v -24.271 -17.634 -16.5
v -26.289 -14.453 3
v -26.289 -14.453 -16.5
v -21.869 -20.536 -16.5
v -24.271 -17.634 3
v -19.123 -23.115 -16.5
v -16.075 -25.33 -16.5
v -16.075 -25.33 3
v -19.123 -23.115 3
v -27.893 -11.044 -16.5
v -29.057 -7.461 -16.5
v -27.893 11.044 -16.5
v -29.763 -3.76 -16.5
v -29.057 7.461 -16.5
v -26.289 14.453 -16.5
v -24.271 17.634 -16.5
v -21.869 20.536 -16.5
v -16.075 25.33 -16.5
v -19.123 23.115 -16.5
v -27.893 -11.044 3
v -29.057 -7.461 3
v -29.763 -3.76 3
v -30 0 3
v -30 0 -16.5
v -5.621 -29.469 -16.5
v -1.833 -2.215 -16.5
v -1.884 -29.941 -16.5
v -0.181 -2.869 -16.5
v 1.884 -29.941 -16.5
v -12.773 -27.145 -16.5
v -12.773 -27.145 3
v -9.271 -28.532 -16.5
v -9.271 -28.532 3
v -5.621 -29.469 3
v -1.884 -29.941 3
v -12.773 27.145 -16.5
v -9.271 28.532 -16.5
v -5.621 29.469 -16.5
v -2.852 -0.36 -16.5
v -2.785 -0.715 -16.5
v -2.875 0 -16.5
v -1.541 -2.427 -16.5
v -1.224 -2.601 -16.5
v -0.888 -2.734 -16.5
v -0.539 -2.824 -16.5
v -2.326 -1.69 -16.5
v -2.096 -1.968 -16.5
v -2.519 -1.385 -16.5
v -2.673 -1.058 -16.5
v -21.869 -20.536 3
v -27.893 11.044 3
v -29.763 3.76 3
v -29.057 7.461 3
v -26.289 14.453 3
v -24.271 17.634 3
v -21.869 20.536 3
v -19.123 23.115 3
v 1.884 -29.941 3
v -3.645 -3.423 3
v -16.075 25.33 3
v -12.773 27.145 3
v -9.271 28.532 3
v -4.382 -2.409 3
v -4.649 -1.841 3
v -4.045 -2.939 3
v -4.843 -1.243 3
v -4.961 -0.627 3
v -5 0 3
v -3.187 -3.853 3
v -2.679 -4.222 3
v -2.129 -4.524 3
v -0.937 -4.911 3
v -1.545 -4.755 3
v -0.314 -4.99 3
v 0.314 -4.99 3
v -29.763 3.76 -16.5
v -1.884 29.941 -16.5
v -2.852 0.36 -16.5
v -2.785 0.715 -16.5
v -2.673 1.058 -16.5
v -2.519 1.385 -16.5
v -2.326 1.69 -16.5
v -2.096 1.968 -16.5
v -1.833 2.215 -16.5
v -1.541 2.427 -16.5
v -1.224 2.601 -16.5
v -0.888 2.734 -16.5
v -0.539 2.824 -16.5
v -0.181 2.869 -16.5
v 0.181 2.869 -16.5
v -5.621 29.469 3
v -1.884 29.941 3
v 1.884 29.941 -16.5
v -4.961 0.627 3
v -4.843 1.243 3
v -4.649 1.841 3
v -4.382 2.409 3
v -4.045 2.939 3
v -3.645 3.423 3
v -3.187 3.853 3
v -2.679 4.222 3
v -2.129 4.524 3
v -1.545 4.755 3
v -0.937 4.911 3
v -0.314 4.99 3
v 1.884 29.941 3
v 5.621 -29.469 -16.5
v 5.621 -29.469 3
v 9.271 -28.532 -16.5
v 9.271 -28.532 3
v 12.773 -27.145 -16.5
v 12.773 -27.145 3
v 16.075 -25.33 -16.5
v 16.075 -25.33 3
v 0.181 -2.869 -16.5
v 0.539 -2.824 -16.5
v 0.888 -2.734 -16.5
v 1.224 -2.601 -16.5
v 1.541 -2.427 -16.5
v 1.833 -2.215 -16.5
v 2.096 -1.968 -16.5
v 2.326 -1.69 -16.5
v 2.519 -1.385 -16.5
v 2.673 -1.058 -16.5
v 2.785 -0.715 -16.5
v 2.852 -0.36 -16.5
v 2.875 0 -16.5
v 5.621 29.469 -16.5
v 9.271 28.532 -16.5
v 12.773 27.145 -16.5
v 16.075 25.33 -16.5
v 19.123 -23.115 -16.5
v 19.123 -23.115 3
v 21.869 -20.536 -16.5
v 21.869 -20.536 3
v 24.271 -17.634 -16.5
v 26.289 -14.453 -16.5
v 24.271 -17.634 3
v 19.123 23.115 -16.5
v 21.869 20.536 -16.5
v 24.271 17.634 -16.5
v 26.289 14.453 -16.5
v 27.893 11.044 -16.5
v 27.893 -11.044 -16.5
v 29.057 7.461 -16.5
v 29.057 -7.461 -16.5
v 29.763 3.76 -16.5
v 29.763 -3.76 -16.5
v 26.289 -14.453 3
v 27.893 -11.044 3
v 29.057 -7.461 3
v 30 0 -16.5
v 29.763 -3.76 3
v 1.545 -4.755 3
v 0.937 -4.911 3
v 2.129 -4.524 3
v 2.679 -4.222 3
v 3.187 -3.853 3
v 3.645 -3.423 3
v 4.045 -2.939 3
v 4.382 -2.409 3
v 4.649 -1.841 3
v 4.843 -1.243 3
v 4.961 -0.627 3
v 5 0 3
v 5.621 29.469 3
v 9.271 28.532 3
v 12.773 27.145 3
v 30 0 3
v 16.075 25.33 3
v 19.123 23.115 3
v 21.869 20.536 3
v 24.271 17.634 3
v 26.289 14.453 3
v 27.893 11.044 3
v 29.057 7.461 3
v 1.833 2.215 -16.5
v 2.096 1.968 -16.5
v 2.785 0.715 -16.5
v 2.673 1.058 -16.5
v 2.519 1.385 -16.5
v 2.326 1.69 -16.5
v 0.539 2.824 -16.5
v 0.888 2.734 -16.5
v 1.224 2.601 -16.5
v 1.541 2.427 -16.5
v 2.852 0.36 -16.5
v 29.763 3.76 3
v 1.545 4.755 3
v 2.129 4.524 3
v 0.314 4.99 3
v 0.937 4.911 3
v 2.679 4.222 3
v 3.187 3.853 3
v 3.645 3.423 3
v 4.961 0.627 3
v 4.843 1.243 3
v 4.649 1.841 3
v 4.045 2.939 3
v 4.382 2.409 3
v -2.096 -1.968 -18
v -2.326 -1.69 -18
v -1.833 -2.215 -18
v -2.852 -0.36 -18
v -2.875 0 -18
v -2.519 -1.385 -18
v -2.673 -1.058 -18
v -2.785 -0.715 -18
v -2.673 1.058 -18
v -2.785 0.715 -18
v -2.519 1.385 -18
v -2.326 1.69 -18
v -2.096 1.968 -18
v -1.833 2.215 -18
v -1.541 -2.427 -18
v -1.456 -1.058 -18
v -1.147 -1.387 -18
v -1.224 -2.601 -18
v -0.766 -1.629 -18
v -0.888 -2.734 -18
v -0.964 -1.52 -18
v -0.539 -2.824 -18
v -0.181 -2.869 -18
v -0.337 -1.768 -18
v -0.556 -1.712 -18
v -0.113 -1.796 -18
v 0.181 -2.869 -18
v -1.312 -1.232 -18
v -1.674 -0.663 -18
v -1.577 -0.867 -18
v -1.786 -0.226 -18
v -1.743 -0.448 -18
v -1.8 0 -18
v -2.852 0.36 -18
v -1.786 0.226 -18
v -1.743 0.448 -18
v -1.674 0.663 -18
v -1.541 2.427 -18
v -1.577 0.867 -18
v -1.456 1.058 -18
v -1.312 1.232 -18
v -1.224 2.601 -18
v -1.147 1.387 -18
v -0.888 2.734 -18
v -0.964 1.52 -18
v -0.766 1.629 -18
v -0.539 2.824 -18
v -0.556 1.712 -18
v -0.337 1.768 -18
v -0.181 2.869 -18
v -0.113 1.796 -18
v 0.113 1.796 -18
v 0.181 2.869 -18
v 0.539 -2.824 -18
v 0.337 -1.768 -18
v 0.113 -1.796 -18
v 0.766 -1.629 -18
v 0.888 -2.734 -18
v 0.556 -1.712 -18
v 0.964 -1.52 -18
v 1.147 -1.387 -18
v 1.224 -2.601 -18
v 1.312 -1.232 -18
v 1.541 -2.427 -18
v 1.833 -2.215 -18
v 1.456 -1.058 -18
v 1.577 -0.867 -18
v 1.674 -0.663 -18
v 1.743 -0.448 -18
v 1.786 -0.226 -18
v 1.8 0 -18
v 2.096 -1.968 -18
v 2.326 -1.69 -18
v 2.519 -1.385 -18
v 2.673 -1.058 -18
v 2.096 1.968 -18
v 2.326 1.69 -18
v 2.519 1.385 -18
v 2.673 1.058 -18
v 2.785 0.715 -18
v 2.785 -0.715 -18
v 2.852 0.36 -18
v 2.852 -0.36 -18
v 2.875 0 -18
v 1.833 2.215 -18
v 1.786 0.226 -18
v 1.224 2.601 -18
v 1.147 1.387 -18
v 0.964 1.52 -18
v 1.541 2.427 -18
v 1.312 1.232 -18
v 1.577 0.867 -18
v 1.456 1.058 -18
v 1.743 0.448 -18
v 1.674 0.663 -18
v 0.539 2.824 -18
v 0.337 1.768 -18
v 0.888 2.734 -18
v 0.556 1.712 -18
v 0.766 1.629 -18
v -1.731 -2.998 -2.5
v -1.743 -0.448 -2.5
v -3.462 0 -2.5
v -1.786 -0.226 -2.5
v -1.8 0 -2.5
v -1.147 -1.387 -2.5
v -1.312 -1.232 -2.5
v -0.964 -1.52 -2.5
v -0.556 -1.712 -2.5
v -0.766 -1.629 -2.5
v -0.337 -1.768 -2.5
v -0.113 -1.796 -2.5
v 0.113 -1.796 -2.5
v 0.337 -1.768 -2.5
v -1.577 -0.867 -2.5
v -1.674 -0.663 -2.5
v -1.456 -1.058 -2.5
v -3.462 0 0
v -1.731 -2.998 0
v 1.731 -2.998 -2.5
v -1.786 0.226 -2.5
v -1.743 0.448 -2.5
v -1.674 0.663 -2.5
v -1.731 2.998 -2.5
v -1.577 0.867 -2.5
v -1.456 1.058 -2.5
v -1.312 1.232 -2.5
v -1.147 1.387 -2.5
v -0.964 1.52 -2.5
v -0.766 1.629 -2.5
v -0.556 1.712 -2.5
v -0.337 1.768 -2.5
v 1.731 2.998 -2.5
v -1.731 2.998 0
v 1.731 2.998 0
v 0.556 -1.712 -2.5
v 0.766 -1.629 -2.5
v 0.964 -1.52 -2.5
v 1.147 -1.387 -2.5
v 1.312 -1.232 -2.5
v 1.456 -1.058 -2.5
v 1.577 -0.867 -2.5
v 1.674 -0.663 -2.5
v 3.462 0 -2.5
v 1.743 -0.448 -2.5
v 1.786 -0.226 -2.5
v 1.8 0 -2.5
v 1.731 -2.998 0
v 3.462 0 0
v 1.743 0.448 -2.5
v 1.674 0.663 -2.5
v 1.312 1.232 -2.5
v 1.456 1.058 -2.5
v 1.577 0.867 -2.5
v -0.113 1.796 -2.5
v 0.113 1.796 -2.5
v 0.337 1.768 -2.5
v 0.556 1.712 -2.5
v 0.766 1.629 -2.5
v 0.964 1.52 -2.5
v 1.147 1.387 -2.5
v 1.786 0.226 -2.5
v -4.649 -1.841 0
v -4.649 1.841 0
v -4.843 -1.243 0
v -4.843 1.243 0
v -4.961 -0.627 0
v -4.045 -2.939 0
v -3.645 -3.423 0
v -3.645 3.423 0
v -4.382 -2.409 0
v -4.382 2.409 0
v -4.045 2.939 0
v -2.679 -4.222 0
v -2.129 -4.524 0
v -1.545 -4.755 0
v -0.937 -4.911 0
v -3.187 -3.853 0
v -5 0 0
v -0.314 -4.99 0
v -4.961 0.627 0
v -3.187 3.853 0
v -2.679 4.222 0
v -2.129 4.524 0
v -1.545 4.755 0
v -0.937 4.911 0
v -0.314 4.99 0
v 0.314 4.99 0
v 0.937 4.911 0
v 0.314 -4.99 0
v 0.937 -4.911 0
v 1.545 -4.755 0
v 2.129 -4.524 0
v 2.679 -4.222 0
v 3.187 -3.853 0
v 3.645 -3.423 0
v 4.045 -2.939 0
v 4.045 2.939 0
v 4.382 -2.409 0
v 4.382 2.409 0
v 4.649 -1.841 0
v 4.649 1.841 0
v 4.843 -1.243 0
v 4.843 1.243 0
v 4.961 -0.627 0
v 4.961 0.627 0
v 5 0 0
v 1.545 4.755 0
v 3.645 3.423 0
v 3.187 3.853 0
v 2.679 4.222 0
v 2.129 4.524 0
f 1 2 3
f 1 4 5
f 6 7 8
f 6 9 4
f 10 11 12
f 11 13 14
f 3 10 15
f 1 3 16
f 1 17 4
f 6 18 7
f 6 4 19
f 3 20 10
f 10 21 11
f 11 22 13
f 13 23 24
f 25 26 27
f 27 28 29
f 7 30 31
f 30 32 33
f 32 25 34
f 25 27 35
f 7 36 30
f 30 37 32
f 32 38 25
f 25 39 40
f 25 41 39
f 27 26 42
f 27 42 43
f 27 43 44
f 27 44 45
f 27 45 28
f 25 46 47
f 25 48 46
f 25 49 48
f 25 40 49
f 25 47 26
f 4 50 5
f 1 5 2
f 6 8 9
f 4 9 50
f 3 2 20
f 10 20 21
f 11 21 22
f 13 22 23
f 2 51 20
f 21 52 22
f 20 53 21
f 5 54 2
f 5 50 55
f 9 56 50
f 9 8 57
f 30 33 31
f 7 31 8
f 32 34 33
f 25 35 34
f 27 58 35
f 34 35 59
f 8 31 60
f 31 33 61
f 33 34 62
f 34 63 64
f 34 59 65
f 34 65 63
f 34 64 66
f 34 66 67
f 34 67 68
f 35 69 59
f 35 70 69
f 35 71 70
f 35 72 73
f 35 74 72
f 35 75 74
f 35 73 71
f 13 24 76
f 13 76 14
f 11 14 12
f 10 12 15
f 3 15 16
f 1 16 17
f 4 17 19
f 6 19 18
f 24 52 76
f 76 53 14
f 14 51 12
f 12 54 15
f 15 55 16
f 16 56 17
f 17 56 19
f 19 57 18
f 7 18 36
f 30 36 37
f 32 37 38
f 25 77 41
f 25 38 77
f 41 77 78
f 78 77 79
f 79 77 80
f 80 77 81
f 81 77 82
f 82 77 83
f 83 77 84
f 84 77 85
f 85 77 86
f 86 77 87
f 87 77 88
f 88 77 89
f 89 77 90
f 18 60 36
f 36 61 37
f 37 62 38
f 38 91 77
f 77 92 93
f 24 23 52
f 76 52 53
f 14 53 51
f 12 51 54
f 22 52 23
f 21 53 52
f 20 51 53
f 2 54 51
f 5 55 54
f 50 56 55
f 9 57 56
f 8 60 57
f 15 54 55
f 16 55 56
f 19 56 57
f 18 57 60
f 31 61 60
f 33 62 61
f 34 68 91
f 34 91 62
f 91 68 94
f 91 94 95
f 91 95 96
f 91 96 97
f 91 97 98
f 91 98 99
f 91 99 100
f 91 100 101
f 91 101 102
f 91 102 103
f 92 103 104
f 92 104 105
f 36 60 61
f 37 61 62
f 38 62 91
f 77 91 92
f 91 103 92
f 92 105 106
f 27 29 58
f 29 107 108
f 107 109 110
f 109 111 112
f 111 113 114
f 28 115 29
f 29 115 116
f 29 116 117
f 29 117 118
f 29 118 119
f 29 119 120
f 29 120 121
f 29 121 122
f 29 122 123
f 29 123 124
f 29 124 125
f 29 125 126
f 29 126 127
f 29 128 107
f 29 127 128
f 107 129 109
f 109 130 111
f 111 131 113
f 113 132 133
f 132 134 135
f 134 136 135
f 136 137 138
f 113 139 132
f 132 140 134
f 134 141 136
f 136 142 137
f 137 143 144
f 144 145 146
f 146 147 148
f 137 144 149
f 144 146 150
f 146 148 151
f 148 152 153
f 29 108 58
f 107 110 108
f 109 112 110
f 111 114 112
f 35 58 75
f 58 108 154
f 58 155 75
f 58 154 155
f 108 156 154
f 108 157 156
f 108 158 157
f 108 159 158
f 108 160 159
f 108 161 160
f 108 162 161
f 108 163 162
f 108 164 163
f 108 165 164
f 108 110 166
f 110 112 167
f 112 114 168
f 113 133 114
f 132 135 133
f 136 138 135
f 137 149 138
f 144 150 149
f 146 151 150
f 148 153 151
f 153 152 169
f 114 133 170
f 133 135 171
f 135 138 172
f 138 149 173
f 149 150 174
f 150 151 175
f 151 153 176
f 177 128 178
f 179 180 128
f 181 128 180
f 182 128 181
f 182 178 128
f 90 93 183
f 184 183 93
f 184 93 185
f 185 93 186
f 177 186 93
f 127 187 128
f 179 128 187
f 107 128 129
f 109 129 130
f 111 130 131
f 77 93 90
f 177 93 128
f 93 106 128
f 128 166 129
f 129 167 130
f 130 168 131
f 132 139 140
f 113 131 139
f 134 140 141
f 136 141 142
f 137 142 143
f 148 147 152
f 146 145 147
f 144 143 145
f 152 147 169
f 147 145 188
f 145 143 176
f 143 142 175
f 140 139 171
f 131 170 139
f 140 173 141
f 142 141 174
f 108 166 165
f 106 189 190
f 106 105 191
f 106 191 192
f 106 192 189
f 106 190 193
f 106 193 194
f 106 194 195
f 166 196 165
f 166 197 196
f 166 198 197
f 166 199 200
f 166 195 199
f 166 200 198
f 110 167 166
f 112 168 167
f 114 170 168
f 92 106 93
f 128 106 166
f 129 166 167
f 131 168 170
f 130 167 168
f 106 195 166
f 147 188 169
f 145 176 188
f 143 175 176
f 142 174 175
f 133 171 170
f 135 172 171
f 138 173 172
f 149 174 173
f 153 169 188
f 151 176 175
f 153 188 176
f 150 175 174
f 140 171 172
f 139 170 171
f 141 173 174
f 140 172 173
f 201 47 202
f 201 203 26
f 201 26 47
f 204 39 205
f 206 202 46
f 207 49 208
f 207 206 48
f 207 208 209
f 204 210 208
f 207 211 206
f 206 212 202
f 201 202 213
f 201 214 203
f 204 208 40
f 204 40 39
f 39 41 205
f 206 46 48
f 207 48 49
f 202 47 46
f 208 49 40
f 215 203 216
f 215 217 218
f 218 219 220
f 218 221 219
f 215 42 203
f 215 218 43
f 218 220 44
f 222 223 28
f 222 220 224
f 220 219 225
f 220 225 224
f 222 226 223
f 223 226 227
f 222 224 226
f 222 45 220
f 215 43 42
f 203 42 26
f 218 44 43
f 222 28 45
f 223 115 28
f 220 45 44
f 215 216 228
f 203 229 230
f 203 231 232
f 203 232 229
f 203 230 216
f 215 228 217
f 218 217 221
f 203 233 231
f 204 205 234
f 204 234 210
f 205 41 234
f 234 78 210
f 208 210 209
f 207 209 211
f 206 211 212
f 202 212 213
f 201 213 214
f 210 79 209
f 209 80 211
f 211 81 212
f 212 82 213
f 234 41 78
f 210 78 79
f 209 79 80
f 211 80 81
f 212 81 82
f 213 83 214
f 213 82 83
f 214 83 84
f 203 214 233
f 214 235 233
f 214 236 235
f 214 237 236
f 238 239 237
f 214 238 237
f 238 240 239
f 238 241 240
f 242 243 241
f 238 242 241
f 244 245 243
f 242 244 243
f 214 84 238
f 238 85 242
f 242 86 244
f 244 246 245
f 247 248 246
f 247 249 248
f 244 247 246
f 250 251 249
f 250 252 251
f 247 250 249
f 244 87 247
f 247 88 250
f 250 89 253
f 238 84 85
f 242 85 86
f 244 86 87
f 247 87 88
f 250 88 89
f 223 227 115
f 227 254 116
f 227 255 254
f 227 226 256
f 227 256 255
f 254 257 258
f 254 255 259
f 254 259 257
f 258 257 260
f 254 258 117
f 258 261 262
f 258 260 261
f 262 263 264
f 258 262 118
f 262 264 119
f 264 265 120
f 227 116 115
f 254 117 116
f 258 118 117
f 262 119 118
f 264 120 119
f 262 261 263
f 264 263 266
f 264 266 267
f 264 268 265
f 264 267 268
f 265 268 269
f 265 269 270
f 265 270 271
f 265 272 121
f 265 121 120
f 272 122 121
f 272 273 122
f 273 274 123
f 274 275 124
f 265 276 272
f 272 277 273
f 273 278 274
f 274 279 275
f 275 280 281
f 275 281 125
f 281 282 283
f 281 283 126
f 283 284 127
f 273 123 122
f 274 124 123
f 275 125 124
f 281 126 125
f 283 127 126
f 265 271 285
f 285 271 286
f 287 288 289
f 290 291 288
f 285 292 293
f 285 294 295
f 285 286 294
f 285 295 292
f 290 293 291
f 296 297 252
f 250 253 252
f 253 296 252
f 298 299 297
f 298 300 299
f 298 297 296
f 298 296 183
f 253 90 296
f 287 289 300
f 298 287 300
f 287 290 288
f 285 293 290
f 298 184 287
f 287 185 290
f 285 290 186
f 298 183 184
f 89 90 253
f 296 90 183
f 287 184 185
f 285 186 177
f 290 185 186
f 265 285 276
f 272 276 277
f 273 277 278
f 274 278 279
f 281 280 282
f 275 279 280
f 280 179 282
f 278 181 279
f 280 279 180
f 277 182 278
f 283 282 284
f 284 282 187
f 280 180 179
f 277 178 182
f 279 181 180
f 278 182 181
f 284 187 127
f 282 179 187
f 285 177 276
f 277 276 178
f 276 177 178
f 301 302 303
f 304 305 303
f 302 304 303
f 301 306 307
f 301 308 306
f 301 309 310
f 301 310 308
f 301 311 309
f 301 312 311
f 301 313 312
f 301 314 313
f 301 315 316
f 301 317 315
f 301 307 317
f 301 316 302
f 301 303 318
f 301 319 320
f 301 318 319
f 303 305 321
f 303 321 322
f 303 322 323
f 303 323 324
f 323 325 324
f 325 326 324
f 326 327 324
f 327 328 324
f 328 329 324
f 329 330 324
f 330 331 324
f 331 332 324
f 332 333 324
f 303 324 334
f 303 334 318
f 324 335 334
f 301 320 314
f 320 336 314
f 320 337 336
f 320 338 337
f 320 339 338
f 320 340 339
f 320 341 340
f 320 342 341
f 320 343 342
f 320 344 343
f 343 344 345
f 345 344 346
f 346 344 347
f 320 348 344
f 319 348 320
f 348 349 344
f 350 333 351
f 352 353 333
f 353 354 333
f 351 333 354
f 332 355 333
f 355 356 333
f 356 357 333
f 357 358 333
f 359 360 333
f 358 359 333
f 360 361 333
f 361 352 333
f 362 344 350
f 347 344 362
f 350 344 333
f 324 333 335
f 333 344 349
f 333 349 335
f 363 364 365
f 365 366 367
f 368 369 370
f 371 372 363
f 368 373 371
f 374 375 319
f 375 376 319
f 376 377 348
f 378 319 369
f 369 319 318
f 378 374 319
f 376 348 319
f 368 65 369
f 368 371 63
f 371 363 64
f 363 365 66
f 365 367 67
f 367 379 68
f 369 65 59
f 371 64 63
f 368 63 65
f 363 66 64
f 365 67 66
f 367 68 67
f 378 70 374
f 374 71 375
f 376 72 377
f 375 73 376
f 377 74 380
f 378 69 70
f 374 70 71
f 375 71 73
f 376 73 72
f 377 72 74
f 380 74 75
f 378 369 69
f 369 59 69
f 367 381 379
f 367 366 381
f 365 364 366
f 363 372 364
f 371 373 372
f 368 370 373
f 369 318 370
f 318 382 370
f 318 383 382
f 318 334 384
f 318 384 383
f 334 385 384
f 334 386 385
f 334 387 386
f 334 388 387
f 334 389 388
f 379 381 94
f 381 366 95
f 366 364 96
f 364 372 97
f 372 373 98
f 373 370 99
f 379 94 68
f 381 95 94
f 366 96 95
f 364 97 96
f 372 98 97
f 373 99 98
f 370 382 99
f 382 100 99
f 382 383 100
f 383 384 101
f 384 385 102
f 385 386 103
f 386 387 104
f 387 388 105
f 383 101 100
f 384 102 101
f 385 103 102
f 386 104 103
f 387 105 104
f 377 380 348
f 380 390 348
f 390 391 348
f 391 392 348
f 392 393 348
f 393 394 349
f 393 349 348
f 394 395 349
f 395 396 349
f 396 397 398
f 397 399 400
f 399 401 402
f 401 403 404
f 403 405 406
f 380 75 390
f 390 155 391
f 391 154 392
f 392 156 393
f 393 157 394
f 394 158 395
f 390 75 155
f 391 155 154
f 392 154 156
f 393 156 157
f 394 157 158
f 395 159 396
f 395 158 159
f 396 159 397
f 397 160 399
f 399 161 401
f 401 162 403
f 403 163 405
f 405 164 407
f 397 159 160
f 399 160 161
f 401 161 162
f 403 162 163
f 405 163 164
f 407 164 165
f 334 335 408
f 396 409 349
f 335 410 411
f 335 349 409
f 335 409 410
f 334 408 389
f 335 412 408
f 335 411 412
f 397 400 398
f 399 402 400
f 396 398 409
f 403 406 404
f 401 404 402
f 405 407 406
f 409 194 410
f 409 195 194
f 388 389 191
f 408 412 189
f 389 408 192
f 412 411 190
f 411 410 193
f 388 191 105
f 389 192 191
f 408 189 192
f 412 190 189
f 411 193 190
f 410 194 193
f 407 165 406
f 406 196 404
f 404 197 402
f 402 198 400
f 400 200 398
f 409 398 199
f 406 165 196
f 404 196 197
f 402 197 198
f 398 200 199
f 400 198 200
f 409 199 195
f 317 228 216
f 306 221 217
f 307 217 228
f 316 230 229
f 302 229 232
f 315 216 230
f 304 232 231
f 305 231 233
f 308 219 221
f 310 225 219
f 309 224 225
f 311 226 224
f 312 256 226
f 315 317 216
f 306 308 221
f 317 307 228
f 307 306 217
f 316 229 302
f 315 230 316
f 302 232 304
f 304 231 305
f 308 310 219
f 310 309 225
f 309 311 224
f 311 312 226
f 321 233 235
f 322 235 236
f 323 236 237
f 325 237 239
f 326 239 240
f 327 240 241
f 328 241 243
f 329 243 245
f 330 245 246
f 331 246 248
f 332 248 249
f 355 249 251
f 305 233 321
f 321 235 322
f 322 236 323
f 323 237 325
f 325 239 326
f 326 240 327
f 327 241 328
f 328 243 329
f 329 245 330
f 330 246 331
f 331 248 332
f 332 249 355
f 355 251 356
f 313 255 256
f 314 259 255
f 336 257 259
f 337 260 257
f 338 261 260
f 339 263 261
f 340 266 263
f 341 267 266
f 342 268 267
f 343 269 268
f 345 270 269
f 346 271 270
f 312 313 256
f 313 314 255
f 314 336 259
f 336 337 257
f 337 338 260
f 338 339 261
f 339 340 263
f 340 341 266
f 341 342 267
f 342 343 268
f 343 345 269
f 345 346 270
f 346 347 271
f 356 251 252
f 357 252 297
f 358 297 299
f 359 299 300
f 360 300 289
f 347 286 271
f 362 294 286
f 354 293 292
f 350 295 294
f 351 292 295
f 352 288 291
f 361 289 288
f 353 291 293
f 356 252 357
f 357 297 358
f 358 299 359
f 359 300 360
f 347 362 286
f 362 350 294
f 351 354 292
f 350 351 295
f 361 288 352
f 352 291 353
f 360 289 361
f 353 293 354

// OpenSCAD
$fn = 50;

difference() {
	union() {
		translate(v = [0, 0, -16.5]) {
			cylinder(h = 19.5, r = 30.0);
		}
		#translate(v = [0, 0, -18.0]) {
			cylinder(h = 18, r = 2.875);
		}
	}
	union() {
		translate(v = [0, 0, 0]) {
			rotate(a = [0, 0, 0]) {
				difference() {
					union() {
						translate(v = [0, 0, -2.5]) {
							linear_extrude(height = 2.5) {
								polygon(points = [[3.4619999999999997, 0.0], [1.7310000000000003, 2.9981799479017264], [-1.7309999999999992, 2.9981799479017264], [-3.4619999999999997, 4.2397272186481365e-16], [-1.7310000000000014, -2.998179947901726], [1.7309999999999977, -2.9981799479017277]]);
							}
						}
					}
					union();
				}
			}
		}
		#cylinder(h = 3, r = 5.0);
		#translate(v = [0, 0, -100.0]) {
			cylinder(h = 200, r = 1.8);
		}
	}
}
